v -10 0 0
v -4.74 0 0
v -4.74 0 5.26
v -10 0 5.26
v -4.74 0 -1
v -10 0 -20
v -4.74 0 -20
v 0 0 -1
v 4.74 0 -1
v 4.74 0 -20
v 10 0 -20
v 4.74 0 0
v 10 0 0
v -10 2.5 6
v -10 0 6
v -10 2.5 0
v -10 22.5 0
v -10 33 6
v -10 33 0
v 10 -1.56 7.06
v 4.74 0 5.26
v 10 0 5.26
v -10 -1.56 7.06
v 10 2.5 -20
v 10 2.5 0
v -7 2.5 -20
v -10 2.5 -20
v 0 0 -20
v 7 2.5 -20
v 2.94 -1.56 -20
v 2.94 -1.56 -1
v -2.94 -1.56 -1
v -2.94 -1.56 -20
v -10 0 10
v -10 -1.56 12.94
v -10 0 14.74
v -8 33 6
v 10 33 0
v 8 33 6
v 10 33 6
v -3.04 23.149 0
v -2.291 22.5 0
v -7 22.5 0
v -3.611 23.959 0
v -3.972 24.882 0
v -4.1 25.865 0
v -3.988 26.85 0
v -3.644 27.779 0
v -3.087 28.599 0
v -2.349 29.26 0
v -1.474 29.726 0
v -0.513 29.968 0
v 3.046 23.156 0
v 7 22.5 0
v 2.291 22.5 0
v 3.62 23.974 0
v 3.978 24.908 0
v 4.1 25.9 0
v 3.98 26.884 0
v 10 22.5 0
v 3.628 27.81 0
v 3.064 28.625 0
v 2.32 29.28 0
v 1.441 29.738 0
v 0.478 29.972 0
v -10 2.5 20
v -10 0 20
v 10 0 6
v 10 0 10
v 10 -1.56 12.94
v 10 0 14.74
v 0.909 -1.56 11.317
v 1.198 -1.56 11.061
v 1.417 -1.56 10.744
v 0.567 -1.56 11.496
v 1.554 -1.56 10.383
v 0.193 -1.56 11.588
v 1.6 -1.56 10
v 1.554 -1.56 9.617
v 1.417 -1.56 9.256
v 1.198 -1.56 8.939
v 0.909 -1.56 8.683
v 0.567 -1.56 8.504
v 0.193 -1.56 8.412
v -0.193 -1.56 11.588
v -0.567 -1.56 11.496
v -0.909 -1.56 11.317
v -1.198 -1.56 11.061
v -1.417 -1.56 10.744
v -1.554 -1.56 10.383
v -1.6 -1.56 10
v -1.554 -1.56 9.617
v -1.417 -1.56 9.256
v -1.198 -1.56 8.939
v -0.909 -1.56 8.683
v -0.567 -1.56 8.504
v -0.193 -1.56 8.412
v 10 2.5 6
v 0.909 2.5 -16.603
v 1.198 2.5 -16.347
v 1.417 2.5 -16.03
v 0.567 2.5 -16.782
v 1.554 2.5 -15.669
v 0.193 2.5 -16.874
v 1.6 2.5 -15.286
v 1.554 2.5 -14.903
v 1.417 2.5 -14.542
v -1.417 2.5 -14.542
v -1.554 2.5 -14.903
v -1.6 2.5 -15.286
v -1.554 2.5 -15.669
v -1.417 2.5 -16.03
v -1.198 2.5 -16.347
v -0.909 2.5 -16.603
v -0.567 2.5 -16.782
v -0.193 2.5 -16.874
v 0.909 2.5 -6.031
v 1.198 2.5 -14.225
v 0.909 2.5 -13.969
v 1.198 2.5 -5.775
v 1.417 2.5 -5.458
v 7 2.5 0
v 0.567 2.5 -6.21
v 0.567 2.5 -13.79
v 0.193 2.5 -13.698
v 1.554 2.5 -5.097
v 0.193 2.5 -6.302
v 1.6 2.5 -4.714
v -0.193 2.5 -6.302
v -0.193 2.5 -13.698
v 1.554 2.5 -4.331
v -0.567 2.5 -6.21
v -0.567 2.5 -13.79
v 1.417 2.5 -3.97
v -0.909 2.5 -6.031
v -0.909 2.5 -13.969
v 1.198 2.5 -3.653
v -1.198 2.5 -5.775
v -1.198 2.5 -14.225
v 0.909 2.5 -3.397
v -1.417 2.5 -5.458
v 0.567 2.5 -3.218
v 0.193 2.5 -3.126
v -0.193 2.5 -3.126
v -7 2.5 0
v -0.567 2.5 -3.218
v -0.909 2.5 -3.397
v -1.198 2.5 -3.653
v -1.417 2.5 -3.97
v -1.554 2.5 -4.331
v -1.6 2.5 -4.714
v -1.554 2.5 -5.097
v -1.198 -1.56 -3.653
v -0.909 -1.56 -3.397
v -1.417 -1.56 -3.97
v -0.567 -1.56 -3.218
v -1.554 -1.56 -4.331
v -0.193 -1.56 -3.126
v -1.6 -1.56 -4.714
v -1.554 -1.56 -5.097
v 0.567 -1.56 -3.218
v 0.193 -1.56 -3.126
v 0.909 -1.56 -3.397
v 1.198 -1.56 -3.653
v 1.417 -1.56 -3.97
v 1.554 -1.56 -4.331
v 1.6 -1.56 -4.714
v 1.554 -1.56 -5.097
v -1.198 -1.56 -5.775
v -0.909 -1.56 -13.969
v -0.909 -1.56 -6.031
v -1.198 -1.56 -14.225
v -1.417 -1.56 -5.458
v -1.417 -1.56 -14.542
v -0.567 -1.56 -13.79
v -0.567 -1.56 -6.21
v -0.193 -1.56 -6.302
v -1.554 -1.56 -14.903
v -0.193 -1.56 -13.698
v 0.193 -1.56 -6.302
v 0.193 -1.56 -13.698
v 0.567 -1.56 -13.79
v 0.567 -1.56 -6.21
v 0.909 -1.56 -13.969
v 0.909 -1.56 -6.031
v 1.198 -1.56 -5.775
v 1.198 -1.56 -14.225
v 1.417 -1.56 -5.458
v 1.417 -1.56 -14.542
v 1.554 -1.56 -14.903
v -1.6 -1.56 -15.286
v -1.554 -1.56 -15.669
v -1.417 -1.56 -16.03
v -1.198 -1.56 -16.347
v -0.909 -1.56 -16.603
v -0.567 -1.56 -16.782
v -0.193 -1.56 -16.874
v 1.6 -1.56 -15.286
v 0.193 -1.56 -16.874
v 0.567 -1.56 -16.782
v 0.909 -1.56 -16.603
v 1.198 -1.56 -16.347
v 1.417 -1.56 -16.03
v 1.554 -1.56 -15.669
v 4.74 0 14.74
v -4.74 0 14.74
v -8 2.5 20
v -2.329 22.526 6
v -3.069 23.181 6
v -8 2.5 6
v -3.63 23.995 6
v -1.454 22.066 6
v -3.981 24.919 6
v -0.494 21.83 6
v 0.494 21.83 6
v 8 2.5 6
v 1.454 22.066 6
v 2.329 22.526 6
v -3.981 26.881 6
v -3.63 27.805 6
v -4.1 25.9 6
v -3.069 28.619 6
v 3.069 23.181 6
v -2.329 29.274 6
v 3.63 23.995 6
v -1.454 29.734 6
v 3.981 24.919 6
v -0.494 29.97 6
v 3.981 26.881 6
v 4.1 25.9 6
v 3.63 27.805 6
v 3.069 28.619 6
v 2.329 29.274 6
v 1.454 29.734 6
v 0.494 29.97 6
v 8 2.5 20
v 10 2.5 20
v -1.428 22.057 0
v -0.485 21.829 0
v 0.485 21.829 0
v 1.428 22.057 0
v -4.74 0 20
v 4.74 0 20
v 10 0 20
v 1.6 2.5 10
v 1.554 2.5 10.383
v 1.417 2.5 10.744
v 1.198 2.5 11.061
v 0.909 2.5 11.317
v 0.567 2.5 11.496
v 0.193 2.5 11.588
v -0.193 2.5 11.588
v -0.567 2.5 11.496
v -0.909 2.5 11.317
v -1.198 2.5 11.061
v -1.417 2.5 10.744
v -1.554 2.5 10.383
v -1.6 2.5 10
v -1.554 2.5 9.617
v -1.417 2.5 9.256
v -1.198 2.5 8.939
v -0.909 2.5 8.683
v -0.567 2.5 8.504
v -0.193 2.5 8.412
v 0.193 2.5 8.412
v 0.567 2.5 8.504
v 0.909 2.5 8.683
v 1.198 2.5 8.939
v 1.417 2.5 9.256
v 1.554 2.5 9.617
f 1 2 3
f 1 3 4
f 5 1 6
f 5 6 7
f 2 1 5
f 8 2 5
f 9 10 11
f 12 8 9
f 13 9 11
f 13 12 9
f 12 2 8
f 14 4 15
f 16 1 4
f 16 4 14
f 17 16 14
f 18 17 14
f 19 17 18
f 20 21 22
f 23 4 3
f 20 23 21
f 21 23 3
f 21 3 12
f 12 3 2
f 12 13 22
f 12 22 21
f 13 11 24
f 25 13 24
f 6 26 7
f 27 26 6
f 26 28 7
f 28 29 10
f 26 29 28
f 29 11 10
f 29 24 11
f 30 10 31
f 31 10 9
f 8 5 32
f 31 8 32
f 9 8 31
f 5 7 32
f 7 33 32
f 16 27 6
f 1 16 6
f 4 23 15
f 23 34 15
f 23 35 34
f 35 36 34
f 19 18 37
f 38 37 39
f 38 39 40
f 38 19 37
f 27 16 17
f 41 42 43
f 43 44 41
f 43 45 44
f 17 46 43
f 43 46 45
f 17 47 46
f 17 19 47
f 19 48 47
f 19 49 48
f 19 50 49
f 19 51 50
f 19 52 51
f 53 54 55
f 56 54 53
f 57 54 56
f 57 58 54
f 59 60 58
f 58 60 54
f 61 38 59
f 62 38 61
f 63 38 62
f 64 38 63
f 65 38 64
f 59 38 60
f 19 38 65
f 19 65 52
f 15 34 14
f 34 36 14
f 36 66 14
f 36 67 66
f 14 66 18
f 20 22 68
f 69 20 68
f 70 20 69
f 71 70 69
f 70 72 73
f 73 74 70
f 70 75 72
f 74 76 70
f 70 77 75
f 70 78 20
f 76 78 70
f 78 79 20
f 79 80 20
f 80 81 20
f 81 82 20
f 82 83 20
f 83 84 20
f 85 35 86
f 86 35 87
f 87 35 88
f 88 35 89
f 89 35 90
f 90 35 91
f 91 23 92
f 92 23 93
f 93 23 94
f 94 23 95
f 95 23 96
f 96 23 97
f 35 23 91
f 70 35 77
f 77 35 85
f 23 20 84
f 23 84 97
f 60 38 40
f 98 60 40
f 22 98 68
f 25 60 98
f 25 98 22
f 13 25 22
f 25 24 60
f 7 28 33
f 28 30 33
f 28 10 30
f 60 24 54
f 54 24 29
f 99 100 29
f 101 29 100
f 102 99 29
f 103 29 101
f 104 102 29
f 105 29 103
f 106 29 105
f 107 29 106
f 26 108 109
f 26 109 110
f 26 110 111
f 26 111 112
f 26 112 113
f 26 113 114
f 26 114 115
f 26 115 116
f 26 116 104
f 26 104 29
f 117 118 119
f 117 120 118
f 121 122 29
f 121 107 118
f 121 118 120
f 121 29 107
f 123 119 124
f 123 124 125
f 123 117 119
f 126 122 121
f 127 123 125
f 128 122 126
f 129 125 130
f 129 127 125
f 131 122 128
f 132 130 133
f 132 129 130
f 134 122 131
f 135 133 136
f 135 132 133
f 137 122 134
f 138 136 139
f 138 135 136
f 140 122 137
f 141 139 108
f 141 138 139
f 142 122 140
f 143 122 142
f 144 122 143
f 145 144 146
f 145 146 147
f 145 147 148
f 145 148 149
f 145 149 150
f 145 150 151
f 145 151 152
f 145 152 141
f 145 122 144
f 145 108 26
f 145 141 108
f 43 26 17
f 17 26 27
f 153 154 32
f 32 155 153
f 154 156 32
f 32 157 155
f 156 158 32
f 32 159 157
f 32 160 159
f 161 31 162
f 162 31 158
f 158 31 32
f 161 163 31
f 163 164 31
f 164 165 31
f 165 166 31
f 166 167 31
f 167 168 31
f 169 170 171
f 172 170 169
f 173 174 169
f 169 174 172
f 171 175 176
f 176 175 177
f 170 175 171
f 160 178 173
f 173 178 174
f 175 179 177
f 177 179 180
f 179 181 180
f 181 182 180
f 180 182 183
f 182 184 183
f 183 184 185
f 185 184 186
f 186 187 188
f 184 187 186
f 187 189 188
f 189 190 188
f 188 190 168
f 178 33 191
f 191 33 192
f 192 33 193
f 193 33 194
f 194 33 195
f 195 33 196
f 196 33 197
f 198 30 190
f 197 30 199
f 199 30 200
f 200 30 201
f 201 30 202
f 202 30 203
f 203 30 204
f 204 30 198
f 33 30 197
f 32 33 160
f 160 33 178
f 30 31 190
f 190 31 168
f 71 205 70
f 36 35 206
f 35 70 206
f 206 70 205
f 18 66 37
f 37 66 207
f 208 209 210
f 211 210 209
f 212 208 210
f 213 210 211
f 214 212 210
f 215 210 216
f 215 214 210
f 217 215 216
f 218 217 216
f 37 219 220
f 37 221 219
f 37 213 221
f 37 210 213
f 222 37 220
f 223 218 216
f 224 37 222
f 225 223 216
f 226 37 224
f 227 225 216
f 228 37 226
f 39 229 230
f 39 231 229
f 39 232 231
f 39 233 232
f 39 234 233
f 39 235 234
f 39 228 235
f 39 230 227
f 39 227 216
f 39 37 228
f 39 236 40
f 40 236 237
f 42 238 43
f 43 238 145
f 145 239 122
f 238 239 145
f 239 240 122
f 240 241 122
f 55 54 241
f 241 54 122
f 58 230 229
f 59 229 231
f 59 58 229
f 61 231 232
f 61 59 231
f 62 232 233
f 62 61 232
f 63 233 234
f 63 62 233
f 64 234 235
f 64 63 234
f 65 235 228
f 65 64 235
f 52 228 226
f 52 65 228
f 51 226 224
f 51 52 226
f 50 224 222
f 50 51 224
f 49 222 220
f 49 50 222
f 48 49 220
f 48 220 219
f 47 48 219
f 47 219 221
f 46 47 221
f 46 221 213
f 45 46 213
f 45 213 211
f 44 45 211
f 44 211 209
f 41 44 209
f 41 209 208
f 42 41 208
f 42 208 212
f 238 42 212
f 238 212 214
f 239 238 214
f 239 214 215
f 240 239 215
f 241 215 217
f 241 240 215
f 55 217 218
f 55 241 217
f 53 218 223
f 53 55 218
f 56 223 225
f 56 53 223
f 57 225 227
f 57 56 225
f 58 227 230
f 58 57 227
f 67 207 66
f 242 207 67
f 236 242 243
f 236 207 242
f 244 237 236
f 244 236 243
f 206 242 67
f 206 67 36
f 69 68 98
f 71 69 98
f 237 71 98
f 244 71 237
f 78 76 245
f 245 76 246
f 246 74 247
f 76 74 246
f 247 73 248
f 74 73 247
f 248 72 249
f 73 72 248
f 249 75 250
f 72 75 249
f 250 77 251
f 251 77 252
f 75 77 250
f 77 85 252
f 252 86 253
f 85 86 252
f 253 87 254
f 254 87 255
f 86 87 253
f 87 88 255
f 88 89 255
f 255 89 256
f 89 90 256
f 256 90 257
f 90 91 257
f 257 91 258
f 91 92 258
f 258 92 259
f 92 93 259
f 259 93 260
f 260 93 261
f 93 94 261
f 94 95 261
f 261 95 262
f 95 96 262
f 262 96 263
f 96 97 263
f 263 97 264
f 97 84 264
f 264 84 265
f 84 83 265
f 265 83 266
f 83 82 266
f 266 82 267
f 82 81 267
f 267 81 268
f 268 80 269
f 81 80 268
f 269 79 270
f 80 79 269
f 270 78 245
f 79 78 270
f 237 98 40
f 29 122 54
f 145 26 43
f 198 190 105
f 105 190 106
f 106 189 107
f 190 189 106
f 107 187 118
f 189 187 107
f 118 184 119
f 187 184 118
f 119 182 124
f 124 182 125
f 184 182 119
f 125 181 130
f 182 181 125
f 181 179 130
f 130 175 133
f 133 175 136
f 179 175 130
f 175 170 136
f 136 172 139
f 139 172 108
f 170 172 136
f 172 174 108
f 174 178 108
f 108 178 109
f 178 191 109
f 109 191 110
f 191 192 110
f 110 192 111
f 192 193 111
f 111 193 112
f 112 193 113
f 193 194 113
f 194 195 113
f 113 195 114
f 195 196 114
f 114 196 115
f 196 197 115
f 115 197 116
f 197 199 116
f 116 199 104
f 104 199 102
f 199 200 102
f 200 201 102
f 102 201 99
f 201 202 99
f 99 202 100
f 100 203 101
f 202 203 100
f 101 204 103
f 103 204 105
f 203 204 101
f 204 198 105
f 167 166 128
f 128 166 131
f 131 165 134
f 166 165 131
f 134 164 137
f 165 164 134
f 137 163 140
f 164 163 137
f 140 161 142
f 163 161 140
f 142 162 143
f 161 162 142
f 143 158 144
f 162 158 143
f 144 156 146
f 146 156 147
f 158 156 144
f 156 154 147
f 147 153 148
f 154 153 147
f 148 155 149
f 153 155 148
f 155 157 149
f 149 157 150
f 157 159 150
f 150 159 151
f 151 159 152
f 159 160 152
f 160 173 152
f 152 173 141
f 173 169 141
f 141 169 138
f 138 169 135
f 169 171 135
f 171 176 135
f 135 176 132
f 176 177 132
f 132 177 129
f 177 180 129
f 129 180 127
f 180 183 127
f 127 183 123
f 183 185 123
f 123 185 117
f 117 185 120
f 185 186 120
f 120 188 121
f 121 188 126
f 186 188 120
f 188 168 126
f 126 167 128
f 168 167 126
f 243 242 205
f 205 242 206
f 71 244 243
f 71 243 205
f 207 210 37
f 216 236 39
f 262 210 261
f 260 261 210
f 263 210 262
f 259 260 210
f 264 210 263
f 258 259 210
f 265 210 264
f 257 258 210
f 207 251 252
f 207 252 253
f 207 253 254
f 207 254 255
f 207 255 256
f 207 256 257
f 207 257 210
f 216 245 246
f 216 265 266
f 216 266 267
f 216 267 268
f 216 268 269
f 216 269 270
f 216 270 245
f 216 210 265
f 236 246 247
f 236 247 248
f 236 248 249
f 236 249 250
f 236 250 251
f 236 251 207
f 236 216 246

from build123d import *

# Parameters (mm, degrees)
SKETCH_R            = 4.1
PAD_DEPTH           = 6
SKETCH001_W         = 2.5
SKETCH001_H         = 14
PAD001_DEPTH        = 20
PAD002_DEPTH        = 14
PAD003_DEPTH        = 2
LINEARPATTERN_COUNT = 2
LINEARPATTERN_PITCH = 18
POCKET_DEPTH        = 20.001
PAD004_DEPTH        = 20
SKETCH004_R         = 1.6
POCKET001_DEPTH     = 34.561
SKETCH005_W         = 20
SKETCH005_H         = 2.5
PAD005_DEPTH        = 20
SKETCH006_W         = 20
SKETCH006_H         = 20
PAD006_DEPTH        = 3
SKETCH007_W         = 20
SKETCH007_H         = 20
PAD007_DEPTH        = 3
POCKET002_DEPTH     = 20.001
PAD008_DEPTH        = 19
SKETCH010_R         = 1.6
POCKET003_DEPTH     = 34.561


with BuildPart() as part:
    # Sketch → Pad (new body)
    with BuildSketch(Plane.XY):
        Polygon((-4.74, 0), (-2.94, -1.56), (2.94, -1.56), (4.74, 0), (10, 0), (10, 33), (-10, 33), (-10, 0), align=None)
        with Locations((0, 25.9)):
            Circle(SKETCH_R, mode=Mode.SUBTRACT)
    extrude(amount=PAD_DEPTH)

    # Sketch001 (on Face5 of Pad) → Pad001 (join)
    with BuildSketch(Plane.YZ.offset(10)):
        with Locations((1.25, 13)):
            Rectangle(SKETCH001_W, SKETCH001_H)
    extrude(amount=-PAD001_DEPTH)

    # Pad001 Face5 → Pad002 (add)
    with BuildSketch(Plane(origin=(0, -0.719062, 6), x_dir=(0, 1, 0), z_dir=(0, 0, 1))):
        Polygon((0.719062, -4.74), (0.719062, 4.74), (-0.840938, 2.94), (-0.840938, -2.94), align=None)
    extrude(amount=PAD002_DEPTH)

    # Sketch002 (on Face6 of Pad002) → Pad003 (join)
    with BuildSketch(Plane(origin=(-10, 0, 0), x_dir=(0, -1, 0), z_dir=(-1, 0, 0))):
        Polygon((-33, 6), (-2.5, 20), (-2.5, 6), align=None)
    pad003 = extrude(amount=-PAD003_DEPTH)

    # LinearPattern: Pad003 ×2
    with Locations(*[(i * LINEARPATTERN_PITCH, 0, 0) for i in range(1, LINEARPATTERN_COUNT)]):
        add(pad003)

    # LinearPattern Face14 → Pocket (cut, through all)
    with BuildSketch(Plane(origin=(0, -0.719062, 20), x_dir=(0, 1, 0), z_dir=(0, 0, 1))):
        Polygon((0.719062, -4.74), (0.719062, 4.74), (-0.840938, 2.94), (-0.840938, -2.94), align=None)
    extrude(amount=-POCKET_DEPTH, mode=Mode.SUBTRACT)

    # Sketch003 (on Face10 of Pocket) → Pad004 (join)
    with BuildSketch(Plane(origin=(-10, 0, 0), x_dir=(0, -1, 0), z_dir=(-1, 0, 0))):
        Polygon((0, 10), (0, 14.74), (1.56, 12.94), (1.56, 7.06), (0, 5.26), align=None)
    extrude(amount=-PAD004_DEPTH)

    # Sketch004 (on Face14 of Pad004) → Pocket001 (cut, through all)
    with BuildSketch(Plane.XZ.offset(1.56)):
        with Locations((0, 10)):
            Circle(SKETCH004_R)
    extrude(amount=-POCKET001_DEPTH, mode=Mode.SUBTRACT)

    # Sketch005 (on Face2 of Pocket001) → Pad005 (join)
    with BuildSketch(Plane(origin=(0, 0, 0), x_dir=(1, 0, 0), z_dir=(0, 0, -1))):
        with Locations((0, -1.25)):
            Rectangle(SKETCH005_W, SKETCH005_H)
    extrude(amount=PAD005_DEPTH)

    # Sketch006 (on Face18 of Pad005) → Pad006 (join)
    with BuildSketch(Plane.YZ.offset(10)):
        with Locations((12.5, -10)):
            Rectangle(SKETCH006_W, SKETCH006_H)
    extrude(amount=-PAD006_DEPTH)

    # Sketch007 (on Face3 of Pad006) → Pad007 (join)
    with BuildSketch(Plane(origin=(-10, 0, 0), x_dir=(0, -1, 0), z_dir=(-1, 0, 0))):
        with Locations((-12.5, -10)):
            Rectangle(SKETCH007_W, SKETCH007_H)
    extrude(amount=-PAD007_DEPTH)

    # Sketch008 (on Face18 of Pad007) → Pocket002 (cut, through all)
    with BuildSketch(Plane.YZ.offset(10)):
        Polygon((22.5, 0), (2.5, -20), (22.5, -20), align=None)
    extrude(amount=-POCKET002_DEPTH, mode=Mode.SUBTRACT)

    # Sketch009 (on Face9 of Pocket002) → Pad008 (join)
    with BuildSketch(Plane(origin=(0, 0, -20), x_dir=(1, 0, 0), z_dir=(0, 0, -1))):
        Polygon((0, 0), (-4.74, 0), (-2.94, 1.56), (2.94, 1.56), (4.74, 0), align=None)
    extrude(amount=-PAD008_DEPTH)

    # Sketch010 (on Face27 of Pad008) → Pocket003 (cut, through all)
    with BuildSketch(Plane.XZ.offset(1.56)):
        with Locations((0, -4.714)):
            Circle(SKETCH010_R)
        with Locations((0, -15.286)):
            Circle(SKETCH010_R)
    extrude(amount=-POCKET003_DEPTH, mode=Mode.SUBTRACT)


solid = part.part
